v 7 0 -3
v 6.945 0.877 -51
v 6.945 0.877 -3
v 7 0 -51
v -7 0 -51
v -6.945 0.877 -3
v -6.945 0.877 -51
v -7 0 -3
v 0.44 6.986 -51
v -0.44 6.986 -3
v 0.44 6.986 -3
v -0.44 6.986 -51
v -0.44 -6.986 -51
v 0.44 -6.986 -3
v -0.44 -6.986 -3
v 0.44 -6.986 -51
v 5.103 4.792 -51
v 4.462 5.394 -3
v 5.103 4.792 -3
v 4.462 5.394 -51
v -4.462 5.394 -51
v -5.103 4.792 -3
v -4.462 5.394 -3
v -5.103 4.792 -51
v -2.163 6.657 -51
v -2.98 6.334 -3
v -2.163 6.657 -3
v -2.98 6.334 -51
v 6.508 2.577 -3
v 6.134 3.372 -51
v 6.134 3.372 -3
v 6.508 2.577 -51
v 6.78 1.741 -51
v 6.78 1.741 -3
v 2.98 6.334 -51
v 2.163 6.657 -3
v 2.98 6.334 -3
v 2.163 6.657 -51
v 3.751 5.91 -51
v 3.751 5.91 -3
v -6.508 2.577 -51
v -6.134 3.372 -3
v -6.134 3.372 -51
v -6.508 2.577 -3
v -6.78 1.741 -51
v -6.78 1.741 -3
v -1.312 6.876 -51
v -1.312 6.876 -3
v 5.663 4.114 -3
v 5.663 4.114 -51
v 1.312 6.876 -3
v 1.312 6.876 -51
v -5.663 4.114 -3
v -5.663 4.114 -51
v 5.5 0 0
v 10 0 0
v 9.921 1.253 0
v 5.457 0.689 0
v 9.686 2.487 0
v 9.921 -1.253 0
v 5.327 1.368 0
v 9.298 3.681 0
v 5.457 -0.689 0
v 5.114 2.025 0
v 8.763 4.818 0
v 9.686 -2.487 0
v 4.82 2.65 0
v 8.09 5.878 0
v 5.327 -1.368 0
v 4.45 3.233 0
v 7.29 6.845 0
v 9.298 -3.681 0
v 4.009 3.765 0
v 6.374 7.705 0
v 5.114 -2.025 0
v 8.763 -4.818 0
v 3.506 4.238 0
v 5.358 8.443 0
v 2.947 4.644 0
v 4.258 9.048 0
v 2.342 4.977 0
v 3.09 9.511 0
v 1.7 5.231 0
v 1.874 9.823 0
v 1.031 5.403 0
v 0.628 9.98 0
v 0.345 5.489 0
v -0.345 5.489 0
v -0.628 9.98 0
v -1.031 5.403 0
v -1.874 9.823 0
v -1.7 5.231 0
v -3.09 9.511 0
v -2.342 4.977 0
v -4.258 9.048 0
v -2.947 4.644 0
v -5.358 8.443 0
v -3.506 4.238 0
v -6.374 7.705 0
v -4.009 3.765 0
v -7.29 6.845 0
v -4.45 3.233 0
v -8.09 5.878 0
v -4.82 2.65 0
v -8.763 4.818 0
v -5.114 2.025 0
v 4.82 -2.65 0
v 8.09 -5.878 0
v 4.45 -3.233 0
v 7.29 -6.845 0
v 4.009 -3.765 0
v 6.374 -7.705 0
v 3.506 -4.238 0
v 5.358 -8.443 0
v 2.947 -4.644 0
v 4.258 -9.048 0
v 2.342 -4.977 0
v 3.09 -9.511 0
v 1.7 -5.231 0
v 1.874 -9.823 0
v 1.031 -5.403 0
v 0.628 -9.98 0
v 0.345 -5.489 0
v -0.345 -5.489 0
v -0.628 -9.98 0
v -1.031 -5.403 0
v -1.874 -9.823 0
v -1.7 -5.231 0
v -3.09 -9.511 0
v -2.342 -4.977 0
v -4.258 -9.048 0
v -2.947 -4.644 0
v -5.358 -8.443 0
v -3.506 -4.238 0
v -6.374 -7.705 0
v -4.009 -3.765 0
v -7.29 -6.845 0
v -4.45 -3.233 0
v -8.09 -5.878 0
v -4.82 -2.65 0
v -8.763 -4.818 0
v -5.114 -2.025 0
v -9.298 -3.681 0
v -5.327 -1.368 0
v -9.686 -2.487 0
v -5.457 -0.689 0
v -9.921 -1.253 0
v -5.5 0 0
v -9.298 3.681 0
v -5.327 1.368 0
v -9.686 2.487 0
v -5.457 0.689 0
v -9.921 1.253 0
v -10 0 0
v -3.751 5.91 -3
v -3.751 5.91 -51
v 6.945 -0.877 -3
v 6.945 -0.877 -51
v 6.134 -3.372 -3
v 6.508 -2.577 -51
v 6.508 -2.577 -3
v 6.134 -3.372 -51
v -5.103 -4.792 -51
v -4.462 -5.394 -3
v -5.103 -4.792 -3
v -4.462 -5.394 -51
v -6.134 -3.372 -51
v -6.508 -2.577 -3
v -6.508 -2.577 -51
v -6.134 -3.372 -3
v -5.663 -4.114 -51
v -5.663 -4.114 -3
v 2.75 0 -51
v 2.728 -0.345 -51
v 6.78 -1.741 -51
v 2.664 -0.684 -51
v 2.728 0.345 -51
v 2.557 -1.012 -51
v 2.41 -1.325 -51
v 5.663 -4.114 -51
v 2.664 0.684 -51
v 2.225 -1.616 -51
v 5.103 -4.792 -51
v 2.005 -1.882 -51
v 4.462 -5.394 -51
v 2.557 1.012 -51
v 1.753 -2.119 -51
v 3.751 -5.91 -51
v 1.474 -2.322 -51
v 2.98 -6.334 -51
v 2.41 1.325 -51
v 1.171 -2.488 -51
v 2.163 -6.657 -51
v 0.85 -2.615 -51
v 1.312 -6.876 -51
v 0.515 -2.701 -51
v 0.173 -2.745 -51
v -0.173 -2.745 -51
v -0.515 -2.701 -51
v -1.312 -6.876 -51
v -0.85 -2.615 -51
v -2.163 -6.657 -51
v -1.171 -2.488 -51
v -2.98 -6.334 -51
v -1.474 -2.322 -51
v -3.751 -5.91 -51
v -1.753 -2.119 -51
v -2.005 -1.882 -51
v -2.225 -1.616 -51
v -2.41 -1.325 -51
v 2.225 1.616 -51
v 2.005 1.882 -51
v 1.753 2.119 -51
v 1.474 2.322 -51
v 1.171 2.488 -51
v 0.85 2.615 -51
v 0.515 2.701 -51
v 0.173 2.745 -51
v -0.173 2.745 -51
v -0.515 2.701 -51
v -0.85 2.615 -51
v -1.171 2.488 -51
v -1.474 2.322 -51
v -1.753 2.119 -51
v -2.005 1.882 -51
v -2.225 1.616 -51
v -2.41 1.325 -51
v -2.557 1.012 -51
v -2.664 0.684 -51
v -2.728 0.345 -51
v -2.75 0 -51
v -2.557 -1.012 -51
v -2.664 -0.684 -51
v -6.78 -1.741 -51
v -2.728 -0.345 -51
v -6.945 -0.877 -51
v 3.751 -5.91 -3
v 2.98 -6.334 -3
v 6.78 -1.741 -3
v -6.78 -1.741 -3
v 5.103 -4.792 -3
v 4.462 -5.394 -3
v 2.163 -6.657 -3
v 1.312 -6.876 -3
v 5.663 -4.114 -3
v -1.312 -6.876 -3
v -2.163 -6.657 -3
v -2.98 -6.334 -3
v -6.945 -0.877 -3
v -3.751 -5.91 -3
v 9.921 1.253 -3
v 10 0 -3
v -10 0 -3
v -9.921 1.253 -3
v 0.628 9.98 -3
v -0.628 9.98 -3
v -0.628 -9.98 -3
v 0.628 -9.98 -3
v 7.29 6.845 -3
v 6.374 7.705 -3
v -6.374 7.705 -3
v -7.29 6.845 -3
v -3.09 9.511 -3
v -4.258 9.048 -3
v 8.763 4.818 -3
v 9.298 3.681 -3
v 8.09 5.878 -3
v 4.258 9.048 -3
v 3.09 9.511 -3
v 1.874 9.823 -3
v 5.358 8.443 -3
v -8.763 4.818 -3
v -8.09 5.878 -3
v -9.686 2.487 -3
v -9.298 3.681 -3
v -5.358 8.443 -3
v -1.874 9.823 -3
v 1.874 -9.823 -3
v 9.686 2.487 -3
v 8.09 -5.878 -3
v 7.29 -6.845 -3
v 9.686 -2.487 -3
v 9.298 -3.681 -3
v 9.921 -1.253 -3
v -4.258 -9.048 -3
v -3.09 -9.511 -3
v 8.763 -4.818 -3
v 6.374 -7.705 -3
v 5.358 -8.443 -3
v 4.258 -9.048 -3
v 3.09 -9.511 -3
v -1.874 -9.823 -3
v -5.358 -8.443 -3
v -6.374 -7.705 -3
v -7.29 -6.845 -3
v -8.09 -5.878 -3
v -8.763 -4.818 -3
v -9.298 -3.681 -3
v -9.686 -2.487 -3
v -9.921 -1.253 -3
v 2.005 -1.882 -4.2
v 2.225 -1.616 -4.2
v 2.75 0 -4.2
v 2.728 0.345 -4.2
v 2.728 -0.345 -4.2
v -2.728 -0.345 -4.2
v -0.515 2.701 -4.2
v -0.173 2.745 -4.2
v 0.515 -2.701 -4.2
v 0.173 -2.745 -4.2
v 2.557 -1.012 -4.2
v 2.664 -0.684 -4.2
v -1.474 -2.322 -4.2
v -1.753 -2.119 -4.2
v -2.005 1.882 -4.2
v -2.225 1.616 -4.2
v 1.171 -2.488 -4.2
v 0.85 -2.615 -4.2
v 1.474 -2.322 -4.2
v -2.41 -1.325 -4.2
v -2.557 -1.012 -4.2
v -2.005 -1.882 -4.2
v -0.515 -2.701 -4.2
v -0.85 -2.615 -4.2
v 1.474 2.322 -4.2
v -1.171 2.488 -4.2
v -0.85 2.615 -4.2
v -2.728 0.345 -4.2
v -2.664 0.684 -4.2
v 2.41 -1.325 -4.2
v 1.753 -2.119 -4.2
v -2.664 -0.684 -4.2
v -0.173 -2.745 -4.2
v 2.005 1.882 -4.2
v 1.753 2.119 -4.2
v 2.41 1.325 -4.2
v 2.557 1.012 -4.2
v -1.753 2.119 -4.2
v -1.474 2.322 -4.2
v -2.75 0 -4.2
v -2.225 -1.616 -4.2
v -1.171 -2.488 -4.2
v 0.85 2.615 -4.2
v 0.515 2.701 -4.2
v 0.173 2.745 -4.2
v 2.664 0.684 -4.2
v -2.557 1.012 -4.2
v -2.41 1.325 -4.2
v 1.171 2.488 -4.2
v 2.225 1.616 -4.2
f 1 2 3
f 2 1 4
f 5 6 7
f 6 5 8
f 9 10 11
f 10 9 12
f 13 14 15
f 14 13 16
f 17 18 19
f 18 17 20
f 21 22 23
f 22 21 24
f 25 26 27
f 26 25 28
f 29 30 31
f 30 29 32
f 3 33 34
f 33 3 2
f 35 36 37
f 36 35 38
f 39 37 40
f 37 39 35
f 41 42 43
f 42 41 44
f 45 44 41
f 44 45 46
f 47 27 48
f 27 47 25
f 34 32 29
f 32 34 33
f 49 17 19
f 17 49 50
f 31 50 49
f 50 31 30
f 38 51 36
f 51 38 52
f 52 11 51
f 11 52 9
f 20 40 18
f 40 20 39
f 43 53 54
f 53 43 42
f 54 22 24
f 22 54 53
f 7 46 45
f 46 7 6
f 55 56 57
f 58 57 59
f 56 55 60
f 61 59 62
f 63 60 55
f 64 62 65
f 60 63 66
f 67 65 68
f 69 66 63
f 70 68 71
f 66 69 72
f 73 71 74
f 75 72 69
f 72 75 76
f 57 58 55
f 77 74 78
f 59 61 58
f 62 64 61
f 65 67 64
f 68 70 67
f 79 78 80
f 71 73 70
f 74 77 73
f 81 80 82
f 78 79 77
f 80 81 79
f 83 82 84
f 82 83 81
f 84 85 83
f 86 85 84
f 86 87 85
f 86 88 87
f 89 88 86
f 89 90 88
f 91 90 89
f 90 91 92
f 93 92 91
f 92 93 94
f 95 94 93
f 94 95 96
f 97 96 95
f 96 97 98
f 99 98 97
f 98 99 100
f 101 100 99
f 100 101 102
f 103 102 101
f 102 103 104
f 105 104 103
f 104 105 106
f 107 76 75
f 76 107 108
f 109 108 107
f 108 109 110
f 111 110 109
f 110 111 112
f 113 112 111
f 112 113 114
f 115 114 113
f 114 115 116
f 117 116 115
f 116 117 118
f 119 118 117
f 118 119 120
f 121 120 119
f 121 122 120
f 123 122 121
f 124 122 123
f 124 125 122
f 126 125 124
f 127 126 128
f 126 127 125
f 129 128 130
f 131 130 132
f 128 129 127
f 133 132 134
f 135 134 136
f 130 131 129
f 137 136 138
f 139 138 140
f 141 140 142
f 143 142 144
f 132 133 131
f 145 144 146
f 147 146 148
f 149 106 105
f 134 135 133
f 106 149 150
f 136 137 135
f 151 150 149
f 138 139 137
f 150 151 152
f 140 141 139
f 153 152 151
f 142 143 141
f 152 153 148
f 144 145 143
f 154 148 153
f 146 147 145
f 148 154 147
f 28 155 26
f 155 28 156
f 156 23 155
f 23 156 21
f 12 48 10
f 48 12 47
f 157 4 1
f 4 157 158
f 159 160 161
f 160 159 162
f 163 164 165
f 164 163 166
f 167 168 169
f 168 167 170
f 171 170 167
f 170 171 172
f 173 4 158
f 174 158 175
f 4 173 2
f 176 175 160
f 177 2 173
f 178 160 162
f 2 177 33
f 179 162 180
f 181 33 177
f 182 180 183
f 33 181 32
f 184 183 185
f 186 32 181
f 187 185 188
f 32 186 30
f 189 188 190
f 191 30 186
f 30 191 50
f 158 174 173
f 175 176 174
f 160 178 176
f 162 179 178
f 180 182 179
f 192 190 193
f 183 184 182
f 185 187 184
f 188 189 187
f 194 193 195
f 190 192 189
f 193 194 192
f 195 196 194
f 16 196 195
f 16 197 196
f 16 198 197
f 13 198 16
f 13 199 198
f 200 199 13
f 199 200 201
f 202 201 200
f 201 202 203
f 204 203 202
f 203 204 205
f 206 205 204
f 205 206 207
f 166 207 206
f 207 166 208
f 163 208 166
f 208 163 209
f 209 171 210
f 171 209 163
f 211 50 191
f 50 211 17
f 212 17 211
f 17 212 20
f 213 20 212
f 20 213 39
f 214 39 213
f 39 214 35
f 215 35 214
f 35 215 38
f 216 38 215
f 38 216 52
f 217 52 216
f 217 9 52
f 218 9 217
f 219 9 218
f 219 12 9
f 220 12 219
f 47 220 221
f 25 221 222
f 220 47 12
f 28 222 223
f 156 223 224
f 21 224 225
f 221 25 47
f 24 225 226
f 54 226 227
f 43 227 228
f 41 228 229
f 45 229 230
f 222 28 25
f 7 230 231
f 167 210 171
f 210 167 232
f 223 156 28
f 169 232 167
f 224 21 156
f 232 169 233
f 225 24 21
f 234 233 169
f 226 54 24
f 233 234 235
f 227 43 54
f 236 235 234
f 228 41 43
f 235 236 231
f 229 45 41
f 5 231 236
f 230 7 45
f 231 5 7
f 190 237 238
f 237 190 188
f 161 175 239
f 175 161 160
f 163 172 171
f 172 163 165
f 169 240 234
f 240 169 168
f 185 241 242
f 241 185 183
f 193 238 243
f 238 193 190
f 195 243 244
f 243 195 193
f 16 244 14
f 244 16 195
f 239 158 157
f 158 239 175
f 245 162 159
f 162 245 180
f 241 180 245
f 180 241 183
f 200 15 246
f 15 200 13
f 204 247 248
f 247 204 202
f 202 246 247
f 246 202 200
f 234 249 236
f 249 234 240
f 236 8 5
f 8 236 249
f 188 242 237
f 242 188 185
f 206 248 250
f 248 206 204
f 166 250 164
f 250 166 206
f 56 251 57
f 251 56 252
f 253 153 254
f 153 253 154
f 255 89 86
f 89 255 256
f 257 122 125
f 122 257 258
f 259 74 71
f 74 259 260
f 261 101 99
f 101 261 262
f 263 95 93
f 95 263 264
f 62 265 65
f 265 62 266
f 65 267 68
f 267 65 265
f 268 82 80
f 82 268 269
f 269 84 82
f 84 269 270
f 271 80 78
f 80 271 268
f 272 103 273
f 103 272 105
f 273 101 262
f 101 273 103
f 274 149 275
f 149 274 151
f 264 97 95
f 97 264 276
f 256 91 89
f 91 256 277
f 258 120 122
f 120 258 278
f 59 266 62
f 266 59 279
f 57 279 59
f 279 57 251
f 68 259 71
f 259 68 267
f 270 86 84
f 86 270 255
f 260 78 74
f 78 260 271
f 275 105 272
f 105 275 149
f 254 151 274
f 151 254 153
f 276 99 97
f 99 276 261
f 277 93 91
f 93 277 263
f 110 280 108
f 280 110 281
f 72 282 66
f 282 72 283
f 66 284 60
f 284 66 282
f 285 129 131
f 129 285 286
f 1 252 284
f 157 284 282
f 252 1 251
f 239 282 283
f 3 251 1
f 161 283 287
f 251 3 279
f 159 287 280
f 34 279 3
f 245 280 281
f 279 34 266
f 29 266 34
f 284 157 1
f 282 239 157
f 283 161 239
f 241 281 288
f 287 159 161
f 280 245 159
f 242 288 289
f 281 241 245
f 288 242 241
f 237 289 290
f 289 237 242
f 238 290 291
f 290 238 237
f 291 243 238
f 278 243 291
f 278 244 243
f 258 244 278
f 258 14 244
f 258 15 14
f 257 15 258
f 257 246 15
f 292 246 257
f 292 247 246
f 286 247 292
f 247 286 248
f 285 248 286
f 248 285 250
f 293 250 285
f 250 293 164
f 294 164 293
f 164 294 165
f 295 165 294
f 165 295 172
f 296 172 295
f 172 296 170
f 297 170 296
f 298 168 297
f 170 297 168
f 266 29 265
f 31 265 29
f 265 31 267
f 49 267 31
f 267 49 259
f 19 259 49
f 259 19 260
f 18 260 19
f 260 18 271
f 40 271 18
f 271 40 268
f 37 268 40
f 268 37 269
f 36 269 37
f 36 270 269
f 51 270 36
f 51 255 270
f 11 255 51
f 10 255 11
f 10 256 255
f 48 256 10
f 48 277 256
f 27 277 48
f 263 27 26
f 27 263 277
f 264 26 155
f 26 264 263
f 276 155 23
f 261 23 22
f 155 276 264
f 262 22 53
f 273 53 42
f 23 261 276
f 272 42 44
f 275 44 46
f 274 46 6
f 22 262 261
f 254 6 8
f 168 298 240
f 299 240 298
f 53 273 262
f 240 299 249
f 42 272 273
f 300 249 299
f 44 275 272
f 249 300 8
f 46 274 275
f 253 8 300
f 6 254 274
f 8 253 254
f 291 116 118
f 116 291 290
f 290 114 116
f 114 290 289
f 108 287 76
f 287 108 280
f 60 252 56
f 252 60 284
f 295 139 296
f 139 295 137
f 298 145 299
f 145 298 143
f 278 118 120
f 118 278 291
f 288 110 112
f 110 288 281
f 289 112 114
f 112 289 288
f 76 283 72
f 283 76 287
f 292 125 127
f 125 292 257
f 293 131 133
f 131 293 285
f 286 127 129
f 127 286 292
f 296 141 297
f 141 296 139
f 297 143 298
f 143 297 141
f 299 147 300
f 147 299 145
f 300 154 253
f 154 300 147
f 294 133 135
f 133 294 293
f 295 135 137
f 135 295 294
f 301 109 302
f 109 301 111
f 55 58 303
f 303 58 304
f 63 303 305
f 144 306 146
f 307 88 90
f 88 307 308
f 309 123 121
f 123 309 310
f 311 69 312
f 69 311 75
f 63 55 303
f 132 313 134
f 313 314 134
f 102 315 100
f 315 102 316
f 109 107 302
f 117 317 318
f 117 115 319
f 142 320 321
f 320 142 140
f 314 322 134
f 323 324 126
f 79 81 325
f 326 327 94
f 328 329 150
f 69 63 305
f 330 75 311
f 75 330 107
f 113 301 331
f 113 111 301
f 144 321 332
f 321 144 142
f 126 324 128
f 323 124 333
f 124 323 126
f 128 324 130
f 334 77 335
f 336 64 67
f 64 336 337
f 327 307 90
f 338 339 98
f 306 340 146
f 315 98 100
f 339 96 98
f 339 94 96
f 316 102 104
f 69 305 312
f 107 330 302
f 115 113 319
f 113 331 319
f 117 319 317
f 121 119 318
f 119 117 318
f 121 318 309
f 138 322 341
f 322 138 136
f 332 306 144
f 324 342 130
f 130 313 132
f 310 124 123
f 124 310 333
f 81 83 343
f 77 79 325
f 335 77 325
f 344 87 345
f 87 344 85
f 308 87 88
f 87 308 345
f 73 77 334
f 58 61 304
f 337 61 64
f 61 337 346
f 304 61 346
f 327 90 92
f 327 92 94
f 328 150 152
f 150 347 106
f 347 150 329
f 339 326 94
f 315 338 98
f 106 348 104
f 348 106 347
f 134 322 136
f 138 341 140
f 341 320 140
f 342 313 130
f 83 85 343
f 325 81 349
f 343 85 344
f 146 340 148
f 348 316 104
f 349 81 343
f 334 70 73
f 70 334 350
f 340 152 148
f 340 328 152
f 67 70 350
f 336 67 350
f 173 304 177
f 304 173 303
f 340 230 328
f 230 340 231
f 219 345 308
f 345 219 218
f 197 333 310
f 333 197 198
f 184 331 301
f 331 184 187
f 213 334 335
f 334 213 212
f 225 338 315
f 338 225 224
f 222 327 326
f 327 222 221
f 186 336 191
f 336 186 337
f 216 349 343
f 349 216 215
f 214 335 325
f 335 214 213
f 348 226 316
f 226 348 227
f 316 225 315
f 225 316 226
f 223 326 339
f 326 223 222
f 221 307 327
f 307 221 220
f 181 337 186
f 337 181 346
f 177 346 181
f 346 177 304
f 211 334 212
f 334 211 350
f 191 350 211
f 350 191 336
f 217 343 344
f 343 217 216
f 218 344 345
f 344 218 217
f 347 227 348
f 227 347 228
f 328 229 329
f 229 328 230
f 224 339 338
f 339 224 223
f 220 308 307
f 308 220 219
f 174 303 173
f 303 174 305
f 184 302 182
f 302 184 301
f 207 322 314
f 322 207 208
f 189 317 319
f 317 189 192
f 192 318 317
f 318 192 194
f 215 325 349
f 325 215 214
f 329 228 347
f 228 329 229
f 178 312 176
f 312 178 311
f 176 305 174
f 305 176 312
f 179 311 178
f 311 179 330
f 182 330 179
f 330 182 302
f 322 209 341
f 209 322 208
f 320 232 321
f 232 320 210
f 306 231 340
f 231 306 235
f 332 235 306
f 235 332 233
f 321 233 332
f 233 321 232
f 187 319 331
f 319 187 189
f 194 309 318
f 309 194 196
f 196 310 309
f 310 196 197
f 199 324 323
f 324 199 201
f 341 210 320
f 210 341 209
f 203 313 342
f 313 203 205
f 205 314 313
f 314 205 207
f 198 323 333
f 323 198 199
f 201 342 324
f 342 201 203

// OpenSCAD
$fn = 50;


difference() {
	union() {
		translate(v = [0, 0, -51.0000000000]) {
			cylinder(h = 51, r = 7.0000000000);
		}
		translate(v = [0, 0, -3.0000000000]) {
			cylinder(h = 3, r = 10.0000000000);
		}
	}
	union() {
		translate(v = [0, 0, 0]) {
			rotate(a = [0, 0, 0]) {
				difference() {
					union() {
						#translate(v = [0, 0, -51.0000000000]) {
							cylinder(h = 51, r = 2.2500000000);
						}
						#translate(v = [0, 0, -4.2000000000]) {
							cylinder(h = 4.2000000000, r1 = 2.7500000000, r2 = 5.5000000000);
						}
						#translate(v = [0, 0, -51.0000000000]) {
							cylinder(h = 51, r = 2.7500000000);
						}
						#translate(v = [0, 0, -51.0000000000]) {
							cylinder(h = 51, r = 2.2500000000);
						}
					}
					union();
				}
			}
		}
	}
}
